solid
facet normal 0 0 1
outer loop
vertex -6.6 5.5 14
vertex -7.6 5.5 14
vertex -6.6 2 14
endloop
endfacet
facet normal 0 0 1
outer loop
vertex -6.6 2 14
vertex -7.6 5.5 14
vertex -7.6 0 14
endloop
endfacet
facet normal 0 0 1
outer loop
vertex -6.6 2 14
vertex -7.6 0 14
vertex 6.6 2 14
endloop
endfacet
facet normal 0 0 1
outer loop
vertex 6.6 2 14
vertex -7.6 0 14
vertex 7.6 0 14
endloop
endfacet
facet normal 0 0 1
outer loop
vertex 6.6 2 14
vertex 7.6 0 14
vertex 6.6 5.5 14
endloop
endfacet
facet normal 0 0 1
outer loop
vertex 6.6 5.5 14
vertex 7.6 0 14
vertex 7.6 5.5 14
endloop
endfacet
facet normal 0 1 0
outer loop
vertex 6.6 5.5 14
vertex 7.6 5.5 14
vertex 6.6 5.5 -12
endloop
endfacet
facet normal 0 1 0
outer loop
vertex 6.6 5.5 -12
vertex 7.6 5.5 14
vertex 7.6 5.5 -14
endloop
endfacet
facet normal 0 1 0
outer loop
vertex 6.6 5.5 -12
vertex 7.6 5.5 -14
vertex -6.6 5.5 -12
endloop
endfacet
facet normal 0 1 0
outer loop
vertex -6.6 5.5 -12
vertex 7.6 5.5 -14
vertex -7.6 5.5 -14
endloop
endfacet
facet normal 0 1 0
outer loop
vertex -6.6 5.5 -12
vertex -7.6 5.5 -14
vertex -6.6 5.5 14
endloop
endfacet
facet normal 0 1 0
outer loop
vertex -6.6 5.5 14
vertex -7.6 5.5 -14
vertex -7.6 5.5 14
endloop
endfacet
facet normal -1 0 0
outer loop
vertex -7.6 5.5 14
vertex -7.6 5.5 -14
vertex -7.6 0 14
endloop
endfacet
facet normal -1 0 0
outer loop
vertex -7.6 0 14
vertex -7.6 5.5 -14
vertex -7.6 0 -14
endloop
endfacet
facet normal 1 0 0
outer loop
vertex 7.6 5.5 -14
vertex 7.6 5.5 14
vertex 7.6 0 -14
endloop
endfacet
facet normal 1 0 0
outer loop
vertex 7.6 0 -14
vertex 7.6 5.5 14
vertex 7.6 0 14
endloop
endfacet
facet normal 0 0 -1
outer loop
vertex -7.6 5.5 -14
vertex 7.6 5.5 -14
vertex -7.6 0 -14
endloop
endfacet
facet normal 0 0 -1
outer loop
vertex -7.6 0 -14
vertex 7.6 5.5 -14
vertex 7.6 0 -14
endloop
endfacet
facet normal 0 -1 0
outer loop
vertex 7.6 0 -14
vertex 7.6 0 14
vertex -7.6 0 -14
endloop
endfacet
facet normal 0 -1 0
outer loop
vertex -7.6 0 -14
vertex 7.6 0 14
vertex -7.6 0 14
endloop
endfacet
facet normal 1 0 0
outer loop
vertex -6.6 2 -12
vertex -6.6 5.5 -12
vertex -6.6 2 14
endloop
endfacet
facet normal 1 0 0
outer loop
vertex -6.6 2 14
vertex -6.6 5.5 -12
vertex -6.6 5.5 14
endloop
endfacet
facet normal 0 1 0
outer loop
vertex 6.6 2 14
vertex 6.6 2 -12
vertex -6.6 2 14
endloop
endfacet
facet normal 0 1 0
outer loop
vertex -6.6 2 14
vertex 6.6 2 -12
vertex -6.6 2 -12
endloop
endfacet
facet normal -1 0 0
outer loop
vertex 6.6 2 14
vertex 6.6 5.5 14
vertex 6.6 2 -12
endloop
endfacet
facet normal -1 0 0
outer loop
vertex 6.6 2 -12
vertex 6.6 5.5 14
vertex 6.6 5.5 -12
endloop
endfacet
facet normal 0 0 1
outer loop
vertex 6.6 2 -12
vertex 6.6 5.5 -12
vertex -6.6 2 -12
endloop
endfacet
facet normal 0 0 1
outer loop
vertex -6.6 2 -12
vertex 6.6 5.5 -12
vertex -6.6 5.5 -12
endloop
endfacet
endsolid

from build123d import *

# Parameters (mm, degrees)
SKETCH1_W               = 15.2
SKETCH1_H               = 28
BOSS_EXTRUDE1_DEPTH     = 5.5
CUT_EXTRUDE1_DEPTH      = 14
CUT_EXTRUDE1_DEPTH_BACK = 12
SKETCH2_W               = 13.2
SKETCH2_H               = 5.5


with BuildPart() as part:
    # Sketch1 → Boss-Extrude1 (new body)
    with BuildSketch(Plane(origin=(0, 0, 0), x_dir=(1, 0, 0), z_dir=(0, 1, 0))):
        Rectangle(SKETCH1_W, SKETCH1_H)
    extrude(amount=BOSS_EXTRUDE1_DEPTH)

    # Sketch2 → Cut-Extrude1 (cut, two sides: drawn at the far end of the back side and taken through both)
    with BuildSketch(Plane.XY.offset(-CUT_EXTRUDE1_DEPTH_BACK)):
        with Locations((0, 4.75)):
            Rectangle(SKETCH2_W, SKETCH2_H)
    extrude(amount=CUT_EXTRUDE1_DEPTH + CUT_EXTRUDE1_DEPTH_BACK, mode=Mode.SUBTRACT)


solid = part.part
